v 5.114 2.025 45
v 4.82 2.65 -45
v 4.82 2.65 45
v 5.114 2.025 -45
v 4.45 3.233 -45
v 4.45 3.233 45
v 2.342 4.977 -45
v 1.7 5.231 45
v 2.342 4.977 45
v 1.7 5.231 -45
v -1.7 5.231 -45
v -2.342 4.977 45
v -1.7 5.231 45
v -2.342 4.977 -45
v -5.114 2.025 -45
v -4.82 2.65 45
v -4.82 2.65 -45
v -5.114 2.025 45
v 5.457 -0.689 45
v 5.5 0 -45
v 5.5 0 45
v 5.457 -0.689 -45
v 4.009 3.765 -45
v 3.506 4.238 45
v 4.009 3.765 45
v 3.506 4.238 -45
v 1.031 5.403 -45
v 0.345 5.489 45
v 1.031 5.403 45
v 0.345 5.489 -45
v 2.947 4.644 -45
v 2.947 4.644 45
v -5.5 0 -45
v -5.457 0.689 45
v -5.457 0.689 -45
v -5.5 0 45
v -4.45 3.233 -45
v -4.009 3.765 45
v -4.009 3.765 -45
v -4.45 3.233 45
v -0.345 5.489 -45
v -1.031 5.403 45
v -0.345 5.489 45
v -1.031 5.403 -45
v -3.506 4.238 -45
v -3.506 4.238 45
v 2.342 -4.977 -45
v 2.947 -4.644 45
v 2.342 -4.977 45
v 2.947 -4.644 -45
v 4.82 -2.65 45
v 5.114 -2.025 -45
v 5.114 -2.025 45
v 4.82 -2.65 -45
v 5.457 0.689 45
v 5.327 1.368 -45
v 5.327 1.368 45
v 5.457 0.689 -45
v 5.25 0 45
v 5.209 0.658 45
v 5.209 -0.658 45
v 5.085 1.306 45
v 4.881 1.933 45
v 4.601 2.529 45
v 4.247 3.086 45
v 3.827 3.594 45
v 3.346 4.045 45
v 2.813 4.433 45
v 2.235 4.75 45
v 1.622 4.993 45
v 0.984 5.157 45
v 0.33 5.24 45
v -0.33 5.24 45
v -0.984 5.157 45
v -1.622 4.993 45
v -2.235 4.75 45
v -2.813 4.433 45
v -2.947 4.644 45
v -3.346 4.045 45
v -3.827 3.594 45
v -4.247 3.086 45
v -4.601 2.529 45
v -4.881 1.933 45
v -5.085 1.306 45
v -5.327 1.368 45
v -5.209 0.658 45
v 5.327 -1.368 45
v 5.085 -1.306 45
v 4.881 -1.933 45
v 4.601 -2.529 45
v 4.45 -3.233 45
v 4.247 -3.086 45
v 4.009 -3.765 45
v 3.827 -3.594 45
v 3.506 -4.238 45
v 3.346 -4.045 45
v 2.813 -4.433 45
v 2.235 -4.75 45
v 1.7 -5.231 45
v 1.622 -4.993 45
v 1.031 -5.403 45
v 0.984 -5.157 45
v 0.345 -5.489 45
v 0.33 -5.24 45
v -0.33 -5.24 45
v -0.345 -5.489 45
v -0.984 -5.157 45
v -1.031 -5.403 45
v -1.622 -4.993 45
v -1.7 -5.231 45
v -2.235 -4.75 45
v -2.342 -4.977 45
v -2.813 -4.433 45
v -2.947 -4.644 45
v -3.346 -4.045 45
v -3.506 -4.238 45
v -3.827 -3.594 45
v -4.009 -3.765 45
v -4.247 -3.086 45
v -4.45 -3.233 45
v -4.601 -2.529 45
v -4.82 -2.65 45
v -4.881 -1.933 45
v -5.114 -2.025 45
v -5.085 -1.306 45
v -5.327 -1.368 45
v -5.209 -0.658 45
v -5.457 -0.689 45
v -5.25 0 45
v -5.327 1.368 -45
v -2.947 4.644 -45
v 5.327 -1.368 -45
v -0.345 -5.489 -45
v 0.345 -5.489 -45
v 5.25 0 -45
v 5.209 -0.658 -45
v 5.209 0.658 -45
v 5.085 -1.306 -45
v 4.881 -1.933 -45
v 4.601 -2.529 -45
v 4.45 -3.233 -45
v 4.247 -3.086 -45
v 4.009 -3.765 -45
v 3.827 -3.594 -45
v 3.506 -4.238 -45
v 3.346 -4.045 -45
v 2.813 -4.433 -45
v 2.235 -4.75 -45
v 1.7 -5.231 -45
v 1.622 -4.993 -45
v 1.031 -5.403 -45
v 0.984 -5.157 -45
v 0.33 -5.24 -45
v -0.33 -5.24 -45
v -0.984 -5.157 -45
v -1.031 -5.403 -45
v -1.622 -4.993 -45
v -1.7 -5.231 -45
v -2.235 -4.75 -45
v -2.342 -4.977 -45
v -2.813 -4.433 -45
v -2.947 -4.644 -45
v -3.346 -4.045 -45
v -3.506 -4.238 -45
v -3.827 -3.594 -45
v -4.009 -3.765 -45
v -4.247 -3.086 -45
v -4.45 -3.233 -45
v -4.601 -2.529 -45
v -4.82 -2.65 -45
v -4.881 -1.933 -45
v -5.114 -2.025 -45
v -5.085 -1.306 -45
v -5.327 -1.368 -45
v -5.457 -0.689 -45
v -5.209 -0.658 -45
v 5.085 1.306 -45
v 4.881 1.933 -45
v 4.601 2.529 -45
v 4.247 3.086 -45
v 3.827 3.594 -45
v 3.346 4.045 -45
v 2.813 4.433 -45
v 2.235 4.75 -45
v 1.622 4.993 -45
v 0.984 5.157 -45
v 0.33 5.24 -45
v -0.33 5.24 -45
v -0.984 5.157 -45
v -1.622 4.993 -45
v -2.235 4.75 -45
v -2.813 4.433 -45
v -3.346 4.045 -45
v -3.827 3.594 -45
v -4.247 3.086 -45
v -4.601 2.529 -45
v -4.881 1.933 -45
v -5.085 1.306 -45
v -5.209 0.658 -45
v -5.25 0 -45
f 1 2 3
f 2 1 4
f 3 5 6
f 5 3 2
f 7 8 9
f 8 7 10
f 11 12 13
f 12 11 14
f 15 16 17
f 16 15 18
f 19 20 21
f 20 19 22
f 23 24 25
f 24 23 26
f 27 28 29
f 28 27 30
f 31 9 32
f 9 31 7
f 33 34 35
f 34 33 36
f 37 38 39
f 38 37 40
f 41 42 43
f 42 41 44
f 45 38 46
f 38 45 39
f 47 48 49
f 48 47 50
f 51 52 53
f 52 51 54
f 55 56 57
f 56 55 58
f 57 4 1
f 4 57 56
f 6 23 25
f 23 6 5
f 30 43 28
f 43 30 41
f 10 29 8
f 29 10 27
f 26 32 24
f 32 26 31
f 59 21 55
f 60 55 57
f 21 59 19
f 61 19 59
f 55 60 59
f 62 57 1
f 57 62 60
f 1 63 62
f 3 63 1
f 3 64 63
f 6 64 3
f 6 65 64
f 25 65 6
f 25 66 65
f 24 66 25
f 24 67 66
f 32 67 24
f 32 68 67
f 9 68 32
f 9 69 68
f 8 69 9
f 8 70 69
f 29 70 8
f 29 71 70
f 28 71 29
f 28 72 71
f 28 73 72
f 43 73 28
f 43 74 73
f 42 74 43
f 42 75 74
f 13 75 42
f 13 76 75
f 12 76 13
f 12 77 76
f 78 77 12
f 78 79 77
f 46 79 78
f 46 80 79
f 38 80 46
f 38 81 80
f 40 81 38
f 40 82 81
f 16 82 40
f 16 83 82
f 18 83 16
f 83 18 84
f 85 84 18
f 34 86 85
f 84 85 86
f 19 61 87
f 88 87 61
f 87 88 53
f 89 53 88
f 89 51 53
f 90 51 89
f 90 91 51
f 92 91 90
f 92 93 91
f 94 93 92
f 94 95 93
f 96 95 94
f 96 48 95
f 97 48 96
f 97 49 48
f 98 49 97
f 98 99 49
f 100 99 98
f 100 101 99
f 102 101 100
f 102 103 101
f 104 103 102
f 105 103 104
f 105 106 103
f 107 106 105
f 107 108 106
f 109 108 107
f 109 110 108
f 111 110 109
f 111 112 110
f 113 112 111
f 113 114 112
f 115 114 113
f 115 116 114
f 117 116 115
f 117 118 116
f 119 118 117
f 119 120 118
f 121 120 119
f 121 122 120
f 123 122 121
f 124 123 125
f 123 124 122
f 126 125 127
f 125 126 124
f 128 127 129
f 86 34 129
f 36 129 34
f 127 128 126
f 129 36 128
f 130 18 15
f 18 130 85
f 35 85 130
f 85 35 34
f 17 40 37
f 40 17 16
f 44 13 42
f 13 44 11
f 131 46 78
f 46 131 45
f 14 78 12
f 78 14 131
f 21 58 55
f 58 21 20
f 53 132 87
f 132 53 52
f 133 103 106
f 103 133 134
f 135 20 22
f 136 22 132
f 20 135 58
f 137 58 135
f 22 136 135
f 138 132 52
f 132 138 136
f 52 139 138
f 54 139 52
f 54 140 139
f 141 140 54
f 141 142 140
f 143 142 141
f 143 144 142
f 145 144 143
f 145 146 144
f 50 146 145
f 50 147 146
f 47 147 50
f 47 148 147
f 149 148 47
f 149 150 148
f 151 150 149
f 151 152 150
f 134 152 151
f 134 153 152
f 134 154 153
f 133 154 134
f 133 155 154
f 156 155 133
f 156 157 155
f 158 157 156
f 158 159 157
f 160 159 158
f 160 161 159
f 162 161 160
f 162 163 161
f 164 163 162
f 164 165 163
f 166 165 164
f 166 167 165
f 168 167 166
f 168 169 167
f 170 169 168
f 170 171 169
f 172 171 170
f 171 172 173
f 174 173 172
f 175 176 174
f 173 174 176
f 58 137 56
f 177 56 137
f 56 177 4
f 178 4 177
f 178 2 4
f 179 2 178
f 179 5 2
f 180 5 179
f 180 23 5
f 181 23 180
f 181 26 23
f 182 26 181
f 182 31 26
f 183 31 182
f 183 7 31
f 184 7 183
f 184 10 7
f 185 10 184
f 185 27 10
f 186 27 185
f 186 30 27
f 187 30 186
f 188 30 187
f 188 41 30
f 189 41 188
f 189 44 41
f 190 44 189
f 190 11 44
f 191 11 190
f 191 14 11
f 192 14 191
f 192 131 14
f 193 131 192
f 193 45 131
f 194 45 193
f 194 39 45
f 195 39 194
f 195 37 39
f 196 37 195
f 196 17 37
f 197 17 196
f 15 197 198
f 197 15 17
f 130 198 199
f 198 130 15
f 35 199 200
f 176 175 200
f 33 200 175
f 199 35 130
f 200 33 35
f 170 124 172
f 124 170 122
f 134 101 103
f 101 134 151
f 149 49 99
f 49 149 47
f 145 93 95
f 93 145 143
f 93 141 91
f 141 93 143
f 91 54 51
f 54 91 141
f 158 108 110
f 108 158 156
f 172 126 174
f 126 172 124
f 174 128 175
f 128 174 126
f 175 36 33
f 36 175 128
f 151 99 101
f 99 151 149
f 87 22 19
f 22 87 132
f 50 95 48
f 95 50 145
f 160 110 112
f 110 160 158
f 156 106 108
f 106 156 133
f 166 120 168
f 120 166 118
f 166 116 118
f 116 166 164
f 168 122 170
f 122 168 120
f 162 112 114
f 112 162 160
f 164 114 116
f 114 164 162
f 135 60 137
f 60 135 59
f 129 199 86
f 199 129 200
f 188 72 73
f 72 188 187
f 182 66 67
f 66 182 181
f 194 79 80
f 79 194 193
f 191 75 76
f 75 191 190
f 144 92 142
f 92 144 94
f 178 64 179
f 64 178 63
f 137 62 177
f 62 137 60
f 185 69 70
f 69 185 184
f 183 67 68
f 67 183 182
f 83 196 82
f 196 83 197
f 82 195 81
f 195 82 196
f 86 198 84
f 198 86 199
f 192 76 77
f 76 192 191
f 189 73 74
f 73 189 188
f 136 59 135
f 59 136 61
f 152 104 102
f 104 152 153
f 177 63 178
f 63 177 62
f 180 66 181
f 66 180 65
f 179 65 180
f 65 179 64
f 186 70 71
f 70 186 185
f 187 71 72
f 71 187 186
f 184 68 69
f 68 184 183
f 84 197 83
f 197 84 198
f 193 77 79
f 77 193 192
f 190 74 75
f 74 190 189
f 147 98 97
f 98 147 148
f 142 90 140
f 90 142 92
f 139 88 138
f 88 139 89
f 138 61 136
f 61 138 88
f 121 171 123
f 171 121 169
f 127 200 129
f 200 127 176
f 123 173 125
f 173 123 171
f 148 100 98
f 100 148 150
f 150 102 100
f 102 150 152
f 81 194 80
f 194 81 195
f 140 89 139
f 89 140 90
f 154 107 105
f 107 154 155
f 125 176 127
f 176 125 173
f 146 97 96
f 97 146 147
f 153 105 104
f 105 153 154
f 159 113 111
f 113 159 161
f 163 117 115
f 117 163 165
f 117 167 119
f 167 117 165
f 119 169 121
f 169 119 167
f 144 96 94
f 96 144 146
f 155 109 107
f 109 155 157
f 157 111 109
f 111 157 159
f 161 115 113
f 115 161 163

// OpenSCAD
$fn = 50;


difference() {
	union() {
		translate(v = [0, 0, -45.0000000000]) {
			cylinder(h = 90, r = 5.5000000000);
		}
	}
	union() {
		translate(v = [0, 0, -100.0000000000]) {
			cylinder(h = 200, r = 5.2500000000);
		}
	}
}
